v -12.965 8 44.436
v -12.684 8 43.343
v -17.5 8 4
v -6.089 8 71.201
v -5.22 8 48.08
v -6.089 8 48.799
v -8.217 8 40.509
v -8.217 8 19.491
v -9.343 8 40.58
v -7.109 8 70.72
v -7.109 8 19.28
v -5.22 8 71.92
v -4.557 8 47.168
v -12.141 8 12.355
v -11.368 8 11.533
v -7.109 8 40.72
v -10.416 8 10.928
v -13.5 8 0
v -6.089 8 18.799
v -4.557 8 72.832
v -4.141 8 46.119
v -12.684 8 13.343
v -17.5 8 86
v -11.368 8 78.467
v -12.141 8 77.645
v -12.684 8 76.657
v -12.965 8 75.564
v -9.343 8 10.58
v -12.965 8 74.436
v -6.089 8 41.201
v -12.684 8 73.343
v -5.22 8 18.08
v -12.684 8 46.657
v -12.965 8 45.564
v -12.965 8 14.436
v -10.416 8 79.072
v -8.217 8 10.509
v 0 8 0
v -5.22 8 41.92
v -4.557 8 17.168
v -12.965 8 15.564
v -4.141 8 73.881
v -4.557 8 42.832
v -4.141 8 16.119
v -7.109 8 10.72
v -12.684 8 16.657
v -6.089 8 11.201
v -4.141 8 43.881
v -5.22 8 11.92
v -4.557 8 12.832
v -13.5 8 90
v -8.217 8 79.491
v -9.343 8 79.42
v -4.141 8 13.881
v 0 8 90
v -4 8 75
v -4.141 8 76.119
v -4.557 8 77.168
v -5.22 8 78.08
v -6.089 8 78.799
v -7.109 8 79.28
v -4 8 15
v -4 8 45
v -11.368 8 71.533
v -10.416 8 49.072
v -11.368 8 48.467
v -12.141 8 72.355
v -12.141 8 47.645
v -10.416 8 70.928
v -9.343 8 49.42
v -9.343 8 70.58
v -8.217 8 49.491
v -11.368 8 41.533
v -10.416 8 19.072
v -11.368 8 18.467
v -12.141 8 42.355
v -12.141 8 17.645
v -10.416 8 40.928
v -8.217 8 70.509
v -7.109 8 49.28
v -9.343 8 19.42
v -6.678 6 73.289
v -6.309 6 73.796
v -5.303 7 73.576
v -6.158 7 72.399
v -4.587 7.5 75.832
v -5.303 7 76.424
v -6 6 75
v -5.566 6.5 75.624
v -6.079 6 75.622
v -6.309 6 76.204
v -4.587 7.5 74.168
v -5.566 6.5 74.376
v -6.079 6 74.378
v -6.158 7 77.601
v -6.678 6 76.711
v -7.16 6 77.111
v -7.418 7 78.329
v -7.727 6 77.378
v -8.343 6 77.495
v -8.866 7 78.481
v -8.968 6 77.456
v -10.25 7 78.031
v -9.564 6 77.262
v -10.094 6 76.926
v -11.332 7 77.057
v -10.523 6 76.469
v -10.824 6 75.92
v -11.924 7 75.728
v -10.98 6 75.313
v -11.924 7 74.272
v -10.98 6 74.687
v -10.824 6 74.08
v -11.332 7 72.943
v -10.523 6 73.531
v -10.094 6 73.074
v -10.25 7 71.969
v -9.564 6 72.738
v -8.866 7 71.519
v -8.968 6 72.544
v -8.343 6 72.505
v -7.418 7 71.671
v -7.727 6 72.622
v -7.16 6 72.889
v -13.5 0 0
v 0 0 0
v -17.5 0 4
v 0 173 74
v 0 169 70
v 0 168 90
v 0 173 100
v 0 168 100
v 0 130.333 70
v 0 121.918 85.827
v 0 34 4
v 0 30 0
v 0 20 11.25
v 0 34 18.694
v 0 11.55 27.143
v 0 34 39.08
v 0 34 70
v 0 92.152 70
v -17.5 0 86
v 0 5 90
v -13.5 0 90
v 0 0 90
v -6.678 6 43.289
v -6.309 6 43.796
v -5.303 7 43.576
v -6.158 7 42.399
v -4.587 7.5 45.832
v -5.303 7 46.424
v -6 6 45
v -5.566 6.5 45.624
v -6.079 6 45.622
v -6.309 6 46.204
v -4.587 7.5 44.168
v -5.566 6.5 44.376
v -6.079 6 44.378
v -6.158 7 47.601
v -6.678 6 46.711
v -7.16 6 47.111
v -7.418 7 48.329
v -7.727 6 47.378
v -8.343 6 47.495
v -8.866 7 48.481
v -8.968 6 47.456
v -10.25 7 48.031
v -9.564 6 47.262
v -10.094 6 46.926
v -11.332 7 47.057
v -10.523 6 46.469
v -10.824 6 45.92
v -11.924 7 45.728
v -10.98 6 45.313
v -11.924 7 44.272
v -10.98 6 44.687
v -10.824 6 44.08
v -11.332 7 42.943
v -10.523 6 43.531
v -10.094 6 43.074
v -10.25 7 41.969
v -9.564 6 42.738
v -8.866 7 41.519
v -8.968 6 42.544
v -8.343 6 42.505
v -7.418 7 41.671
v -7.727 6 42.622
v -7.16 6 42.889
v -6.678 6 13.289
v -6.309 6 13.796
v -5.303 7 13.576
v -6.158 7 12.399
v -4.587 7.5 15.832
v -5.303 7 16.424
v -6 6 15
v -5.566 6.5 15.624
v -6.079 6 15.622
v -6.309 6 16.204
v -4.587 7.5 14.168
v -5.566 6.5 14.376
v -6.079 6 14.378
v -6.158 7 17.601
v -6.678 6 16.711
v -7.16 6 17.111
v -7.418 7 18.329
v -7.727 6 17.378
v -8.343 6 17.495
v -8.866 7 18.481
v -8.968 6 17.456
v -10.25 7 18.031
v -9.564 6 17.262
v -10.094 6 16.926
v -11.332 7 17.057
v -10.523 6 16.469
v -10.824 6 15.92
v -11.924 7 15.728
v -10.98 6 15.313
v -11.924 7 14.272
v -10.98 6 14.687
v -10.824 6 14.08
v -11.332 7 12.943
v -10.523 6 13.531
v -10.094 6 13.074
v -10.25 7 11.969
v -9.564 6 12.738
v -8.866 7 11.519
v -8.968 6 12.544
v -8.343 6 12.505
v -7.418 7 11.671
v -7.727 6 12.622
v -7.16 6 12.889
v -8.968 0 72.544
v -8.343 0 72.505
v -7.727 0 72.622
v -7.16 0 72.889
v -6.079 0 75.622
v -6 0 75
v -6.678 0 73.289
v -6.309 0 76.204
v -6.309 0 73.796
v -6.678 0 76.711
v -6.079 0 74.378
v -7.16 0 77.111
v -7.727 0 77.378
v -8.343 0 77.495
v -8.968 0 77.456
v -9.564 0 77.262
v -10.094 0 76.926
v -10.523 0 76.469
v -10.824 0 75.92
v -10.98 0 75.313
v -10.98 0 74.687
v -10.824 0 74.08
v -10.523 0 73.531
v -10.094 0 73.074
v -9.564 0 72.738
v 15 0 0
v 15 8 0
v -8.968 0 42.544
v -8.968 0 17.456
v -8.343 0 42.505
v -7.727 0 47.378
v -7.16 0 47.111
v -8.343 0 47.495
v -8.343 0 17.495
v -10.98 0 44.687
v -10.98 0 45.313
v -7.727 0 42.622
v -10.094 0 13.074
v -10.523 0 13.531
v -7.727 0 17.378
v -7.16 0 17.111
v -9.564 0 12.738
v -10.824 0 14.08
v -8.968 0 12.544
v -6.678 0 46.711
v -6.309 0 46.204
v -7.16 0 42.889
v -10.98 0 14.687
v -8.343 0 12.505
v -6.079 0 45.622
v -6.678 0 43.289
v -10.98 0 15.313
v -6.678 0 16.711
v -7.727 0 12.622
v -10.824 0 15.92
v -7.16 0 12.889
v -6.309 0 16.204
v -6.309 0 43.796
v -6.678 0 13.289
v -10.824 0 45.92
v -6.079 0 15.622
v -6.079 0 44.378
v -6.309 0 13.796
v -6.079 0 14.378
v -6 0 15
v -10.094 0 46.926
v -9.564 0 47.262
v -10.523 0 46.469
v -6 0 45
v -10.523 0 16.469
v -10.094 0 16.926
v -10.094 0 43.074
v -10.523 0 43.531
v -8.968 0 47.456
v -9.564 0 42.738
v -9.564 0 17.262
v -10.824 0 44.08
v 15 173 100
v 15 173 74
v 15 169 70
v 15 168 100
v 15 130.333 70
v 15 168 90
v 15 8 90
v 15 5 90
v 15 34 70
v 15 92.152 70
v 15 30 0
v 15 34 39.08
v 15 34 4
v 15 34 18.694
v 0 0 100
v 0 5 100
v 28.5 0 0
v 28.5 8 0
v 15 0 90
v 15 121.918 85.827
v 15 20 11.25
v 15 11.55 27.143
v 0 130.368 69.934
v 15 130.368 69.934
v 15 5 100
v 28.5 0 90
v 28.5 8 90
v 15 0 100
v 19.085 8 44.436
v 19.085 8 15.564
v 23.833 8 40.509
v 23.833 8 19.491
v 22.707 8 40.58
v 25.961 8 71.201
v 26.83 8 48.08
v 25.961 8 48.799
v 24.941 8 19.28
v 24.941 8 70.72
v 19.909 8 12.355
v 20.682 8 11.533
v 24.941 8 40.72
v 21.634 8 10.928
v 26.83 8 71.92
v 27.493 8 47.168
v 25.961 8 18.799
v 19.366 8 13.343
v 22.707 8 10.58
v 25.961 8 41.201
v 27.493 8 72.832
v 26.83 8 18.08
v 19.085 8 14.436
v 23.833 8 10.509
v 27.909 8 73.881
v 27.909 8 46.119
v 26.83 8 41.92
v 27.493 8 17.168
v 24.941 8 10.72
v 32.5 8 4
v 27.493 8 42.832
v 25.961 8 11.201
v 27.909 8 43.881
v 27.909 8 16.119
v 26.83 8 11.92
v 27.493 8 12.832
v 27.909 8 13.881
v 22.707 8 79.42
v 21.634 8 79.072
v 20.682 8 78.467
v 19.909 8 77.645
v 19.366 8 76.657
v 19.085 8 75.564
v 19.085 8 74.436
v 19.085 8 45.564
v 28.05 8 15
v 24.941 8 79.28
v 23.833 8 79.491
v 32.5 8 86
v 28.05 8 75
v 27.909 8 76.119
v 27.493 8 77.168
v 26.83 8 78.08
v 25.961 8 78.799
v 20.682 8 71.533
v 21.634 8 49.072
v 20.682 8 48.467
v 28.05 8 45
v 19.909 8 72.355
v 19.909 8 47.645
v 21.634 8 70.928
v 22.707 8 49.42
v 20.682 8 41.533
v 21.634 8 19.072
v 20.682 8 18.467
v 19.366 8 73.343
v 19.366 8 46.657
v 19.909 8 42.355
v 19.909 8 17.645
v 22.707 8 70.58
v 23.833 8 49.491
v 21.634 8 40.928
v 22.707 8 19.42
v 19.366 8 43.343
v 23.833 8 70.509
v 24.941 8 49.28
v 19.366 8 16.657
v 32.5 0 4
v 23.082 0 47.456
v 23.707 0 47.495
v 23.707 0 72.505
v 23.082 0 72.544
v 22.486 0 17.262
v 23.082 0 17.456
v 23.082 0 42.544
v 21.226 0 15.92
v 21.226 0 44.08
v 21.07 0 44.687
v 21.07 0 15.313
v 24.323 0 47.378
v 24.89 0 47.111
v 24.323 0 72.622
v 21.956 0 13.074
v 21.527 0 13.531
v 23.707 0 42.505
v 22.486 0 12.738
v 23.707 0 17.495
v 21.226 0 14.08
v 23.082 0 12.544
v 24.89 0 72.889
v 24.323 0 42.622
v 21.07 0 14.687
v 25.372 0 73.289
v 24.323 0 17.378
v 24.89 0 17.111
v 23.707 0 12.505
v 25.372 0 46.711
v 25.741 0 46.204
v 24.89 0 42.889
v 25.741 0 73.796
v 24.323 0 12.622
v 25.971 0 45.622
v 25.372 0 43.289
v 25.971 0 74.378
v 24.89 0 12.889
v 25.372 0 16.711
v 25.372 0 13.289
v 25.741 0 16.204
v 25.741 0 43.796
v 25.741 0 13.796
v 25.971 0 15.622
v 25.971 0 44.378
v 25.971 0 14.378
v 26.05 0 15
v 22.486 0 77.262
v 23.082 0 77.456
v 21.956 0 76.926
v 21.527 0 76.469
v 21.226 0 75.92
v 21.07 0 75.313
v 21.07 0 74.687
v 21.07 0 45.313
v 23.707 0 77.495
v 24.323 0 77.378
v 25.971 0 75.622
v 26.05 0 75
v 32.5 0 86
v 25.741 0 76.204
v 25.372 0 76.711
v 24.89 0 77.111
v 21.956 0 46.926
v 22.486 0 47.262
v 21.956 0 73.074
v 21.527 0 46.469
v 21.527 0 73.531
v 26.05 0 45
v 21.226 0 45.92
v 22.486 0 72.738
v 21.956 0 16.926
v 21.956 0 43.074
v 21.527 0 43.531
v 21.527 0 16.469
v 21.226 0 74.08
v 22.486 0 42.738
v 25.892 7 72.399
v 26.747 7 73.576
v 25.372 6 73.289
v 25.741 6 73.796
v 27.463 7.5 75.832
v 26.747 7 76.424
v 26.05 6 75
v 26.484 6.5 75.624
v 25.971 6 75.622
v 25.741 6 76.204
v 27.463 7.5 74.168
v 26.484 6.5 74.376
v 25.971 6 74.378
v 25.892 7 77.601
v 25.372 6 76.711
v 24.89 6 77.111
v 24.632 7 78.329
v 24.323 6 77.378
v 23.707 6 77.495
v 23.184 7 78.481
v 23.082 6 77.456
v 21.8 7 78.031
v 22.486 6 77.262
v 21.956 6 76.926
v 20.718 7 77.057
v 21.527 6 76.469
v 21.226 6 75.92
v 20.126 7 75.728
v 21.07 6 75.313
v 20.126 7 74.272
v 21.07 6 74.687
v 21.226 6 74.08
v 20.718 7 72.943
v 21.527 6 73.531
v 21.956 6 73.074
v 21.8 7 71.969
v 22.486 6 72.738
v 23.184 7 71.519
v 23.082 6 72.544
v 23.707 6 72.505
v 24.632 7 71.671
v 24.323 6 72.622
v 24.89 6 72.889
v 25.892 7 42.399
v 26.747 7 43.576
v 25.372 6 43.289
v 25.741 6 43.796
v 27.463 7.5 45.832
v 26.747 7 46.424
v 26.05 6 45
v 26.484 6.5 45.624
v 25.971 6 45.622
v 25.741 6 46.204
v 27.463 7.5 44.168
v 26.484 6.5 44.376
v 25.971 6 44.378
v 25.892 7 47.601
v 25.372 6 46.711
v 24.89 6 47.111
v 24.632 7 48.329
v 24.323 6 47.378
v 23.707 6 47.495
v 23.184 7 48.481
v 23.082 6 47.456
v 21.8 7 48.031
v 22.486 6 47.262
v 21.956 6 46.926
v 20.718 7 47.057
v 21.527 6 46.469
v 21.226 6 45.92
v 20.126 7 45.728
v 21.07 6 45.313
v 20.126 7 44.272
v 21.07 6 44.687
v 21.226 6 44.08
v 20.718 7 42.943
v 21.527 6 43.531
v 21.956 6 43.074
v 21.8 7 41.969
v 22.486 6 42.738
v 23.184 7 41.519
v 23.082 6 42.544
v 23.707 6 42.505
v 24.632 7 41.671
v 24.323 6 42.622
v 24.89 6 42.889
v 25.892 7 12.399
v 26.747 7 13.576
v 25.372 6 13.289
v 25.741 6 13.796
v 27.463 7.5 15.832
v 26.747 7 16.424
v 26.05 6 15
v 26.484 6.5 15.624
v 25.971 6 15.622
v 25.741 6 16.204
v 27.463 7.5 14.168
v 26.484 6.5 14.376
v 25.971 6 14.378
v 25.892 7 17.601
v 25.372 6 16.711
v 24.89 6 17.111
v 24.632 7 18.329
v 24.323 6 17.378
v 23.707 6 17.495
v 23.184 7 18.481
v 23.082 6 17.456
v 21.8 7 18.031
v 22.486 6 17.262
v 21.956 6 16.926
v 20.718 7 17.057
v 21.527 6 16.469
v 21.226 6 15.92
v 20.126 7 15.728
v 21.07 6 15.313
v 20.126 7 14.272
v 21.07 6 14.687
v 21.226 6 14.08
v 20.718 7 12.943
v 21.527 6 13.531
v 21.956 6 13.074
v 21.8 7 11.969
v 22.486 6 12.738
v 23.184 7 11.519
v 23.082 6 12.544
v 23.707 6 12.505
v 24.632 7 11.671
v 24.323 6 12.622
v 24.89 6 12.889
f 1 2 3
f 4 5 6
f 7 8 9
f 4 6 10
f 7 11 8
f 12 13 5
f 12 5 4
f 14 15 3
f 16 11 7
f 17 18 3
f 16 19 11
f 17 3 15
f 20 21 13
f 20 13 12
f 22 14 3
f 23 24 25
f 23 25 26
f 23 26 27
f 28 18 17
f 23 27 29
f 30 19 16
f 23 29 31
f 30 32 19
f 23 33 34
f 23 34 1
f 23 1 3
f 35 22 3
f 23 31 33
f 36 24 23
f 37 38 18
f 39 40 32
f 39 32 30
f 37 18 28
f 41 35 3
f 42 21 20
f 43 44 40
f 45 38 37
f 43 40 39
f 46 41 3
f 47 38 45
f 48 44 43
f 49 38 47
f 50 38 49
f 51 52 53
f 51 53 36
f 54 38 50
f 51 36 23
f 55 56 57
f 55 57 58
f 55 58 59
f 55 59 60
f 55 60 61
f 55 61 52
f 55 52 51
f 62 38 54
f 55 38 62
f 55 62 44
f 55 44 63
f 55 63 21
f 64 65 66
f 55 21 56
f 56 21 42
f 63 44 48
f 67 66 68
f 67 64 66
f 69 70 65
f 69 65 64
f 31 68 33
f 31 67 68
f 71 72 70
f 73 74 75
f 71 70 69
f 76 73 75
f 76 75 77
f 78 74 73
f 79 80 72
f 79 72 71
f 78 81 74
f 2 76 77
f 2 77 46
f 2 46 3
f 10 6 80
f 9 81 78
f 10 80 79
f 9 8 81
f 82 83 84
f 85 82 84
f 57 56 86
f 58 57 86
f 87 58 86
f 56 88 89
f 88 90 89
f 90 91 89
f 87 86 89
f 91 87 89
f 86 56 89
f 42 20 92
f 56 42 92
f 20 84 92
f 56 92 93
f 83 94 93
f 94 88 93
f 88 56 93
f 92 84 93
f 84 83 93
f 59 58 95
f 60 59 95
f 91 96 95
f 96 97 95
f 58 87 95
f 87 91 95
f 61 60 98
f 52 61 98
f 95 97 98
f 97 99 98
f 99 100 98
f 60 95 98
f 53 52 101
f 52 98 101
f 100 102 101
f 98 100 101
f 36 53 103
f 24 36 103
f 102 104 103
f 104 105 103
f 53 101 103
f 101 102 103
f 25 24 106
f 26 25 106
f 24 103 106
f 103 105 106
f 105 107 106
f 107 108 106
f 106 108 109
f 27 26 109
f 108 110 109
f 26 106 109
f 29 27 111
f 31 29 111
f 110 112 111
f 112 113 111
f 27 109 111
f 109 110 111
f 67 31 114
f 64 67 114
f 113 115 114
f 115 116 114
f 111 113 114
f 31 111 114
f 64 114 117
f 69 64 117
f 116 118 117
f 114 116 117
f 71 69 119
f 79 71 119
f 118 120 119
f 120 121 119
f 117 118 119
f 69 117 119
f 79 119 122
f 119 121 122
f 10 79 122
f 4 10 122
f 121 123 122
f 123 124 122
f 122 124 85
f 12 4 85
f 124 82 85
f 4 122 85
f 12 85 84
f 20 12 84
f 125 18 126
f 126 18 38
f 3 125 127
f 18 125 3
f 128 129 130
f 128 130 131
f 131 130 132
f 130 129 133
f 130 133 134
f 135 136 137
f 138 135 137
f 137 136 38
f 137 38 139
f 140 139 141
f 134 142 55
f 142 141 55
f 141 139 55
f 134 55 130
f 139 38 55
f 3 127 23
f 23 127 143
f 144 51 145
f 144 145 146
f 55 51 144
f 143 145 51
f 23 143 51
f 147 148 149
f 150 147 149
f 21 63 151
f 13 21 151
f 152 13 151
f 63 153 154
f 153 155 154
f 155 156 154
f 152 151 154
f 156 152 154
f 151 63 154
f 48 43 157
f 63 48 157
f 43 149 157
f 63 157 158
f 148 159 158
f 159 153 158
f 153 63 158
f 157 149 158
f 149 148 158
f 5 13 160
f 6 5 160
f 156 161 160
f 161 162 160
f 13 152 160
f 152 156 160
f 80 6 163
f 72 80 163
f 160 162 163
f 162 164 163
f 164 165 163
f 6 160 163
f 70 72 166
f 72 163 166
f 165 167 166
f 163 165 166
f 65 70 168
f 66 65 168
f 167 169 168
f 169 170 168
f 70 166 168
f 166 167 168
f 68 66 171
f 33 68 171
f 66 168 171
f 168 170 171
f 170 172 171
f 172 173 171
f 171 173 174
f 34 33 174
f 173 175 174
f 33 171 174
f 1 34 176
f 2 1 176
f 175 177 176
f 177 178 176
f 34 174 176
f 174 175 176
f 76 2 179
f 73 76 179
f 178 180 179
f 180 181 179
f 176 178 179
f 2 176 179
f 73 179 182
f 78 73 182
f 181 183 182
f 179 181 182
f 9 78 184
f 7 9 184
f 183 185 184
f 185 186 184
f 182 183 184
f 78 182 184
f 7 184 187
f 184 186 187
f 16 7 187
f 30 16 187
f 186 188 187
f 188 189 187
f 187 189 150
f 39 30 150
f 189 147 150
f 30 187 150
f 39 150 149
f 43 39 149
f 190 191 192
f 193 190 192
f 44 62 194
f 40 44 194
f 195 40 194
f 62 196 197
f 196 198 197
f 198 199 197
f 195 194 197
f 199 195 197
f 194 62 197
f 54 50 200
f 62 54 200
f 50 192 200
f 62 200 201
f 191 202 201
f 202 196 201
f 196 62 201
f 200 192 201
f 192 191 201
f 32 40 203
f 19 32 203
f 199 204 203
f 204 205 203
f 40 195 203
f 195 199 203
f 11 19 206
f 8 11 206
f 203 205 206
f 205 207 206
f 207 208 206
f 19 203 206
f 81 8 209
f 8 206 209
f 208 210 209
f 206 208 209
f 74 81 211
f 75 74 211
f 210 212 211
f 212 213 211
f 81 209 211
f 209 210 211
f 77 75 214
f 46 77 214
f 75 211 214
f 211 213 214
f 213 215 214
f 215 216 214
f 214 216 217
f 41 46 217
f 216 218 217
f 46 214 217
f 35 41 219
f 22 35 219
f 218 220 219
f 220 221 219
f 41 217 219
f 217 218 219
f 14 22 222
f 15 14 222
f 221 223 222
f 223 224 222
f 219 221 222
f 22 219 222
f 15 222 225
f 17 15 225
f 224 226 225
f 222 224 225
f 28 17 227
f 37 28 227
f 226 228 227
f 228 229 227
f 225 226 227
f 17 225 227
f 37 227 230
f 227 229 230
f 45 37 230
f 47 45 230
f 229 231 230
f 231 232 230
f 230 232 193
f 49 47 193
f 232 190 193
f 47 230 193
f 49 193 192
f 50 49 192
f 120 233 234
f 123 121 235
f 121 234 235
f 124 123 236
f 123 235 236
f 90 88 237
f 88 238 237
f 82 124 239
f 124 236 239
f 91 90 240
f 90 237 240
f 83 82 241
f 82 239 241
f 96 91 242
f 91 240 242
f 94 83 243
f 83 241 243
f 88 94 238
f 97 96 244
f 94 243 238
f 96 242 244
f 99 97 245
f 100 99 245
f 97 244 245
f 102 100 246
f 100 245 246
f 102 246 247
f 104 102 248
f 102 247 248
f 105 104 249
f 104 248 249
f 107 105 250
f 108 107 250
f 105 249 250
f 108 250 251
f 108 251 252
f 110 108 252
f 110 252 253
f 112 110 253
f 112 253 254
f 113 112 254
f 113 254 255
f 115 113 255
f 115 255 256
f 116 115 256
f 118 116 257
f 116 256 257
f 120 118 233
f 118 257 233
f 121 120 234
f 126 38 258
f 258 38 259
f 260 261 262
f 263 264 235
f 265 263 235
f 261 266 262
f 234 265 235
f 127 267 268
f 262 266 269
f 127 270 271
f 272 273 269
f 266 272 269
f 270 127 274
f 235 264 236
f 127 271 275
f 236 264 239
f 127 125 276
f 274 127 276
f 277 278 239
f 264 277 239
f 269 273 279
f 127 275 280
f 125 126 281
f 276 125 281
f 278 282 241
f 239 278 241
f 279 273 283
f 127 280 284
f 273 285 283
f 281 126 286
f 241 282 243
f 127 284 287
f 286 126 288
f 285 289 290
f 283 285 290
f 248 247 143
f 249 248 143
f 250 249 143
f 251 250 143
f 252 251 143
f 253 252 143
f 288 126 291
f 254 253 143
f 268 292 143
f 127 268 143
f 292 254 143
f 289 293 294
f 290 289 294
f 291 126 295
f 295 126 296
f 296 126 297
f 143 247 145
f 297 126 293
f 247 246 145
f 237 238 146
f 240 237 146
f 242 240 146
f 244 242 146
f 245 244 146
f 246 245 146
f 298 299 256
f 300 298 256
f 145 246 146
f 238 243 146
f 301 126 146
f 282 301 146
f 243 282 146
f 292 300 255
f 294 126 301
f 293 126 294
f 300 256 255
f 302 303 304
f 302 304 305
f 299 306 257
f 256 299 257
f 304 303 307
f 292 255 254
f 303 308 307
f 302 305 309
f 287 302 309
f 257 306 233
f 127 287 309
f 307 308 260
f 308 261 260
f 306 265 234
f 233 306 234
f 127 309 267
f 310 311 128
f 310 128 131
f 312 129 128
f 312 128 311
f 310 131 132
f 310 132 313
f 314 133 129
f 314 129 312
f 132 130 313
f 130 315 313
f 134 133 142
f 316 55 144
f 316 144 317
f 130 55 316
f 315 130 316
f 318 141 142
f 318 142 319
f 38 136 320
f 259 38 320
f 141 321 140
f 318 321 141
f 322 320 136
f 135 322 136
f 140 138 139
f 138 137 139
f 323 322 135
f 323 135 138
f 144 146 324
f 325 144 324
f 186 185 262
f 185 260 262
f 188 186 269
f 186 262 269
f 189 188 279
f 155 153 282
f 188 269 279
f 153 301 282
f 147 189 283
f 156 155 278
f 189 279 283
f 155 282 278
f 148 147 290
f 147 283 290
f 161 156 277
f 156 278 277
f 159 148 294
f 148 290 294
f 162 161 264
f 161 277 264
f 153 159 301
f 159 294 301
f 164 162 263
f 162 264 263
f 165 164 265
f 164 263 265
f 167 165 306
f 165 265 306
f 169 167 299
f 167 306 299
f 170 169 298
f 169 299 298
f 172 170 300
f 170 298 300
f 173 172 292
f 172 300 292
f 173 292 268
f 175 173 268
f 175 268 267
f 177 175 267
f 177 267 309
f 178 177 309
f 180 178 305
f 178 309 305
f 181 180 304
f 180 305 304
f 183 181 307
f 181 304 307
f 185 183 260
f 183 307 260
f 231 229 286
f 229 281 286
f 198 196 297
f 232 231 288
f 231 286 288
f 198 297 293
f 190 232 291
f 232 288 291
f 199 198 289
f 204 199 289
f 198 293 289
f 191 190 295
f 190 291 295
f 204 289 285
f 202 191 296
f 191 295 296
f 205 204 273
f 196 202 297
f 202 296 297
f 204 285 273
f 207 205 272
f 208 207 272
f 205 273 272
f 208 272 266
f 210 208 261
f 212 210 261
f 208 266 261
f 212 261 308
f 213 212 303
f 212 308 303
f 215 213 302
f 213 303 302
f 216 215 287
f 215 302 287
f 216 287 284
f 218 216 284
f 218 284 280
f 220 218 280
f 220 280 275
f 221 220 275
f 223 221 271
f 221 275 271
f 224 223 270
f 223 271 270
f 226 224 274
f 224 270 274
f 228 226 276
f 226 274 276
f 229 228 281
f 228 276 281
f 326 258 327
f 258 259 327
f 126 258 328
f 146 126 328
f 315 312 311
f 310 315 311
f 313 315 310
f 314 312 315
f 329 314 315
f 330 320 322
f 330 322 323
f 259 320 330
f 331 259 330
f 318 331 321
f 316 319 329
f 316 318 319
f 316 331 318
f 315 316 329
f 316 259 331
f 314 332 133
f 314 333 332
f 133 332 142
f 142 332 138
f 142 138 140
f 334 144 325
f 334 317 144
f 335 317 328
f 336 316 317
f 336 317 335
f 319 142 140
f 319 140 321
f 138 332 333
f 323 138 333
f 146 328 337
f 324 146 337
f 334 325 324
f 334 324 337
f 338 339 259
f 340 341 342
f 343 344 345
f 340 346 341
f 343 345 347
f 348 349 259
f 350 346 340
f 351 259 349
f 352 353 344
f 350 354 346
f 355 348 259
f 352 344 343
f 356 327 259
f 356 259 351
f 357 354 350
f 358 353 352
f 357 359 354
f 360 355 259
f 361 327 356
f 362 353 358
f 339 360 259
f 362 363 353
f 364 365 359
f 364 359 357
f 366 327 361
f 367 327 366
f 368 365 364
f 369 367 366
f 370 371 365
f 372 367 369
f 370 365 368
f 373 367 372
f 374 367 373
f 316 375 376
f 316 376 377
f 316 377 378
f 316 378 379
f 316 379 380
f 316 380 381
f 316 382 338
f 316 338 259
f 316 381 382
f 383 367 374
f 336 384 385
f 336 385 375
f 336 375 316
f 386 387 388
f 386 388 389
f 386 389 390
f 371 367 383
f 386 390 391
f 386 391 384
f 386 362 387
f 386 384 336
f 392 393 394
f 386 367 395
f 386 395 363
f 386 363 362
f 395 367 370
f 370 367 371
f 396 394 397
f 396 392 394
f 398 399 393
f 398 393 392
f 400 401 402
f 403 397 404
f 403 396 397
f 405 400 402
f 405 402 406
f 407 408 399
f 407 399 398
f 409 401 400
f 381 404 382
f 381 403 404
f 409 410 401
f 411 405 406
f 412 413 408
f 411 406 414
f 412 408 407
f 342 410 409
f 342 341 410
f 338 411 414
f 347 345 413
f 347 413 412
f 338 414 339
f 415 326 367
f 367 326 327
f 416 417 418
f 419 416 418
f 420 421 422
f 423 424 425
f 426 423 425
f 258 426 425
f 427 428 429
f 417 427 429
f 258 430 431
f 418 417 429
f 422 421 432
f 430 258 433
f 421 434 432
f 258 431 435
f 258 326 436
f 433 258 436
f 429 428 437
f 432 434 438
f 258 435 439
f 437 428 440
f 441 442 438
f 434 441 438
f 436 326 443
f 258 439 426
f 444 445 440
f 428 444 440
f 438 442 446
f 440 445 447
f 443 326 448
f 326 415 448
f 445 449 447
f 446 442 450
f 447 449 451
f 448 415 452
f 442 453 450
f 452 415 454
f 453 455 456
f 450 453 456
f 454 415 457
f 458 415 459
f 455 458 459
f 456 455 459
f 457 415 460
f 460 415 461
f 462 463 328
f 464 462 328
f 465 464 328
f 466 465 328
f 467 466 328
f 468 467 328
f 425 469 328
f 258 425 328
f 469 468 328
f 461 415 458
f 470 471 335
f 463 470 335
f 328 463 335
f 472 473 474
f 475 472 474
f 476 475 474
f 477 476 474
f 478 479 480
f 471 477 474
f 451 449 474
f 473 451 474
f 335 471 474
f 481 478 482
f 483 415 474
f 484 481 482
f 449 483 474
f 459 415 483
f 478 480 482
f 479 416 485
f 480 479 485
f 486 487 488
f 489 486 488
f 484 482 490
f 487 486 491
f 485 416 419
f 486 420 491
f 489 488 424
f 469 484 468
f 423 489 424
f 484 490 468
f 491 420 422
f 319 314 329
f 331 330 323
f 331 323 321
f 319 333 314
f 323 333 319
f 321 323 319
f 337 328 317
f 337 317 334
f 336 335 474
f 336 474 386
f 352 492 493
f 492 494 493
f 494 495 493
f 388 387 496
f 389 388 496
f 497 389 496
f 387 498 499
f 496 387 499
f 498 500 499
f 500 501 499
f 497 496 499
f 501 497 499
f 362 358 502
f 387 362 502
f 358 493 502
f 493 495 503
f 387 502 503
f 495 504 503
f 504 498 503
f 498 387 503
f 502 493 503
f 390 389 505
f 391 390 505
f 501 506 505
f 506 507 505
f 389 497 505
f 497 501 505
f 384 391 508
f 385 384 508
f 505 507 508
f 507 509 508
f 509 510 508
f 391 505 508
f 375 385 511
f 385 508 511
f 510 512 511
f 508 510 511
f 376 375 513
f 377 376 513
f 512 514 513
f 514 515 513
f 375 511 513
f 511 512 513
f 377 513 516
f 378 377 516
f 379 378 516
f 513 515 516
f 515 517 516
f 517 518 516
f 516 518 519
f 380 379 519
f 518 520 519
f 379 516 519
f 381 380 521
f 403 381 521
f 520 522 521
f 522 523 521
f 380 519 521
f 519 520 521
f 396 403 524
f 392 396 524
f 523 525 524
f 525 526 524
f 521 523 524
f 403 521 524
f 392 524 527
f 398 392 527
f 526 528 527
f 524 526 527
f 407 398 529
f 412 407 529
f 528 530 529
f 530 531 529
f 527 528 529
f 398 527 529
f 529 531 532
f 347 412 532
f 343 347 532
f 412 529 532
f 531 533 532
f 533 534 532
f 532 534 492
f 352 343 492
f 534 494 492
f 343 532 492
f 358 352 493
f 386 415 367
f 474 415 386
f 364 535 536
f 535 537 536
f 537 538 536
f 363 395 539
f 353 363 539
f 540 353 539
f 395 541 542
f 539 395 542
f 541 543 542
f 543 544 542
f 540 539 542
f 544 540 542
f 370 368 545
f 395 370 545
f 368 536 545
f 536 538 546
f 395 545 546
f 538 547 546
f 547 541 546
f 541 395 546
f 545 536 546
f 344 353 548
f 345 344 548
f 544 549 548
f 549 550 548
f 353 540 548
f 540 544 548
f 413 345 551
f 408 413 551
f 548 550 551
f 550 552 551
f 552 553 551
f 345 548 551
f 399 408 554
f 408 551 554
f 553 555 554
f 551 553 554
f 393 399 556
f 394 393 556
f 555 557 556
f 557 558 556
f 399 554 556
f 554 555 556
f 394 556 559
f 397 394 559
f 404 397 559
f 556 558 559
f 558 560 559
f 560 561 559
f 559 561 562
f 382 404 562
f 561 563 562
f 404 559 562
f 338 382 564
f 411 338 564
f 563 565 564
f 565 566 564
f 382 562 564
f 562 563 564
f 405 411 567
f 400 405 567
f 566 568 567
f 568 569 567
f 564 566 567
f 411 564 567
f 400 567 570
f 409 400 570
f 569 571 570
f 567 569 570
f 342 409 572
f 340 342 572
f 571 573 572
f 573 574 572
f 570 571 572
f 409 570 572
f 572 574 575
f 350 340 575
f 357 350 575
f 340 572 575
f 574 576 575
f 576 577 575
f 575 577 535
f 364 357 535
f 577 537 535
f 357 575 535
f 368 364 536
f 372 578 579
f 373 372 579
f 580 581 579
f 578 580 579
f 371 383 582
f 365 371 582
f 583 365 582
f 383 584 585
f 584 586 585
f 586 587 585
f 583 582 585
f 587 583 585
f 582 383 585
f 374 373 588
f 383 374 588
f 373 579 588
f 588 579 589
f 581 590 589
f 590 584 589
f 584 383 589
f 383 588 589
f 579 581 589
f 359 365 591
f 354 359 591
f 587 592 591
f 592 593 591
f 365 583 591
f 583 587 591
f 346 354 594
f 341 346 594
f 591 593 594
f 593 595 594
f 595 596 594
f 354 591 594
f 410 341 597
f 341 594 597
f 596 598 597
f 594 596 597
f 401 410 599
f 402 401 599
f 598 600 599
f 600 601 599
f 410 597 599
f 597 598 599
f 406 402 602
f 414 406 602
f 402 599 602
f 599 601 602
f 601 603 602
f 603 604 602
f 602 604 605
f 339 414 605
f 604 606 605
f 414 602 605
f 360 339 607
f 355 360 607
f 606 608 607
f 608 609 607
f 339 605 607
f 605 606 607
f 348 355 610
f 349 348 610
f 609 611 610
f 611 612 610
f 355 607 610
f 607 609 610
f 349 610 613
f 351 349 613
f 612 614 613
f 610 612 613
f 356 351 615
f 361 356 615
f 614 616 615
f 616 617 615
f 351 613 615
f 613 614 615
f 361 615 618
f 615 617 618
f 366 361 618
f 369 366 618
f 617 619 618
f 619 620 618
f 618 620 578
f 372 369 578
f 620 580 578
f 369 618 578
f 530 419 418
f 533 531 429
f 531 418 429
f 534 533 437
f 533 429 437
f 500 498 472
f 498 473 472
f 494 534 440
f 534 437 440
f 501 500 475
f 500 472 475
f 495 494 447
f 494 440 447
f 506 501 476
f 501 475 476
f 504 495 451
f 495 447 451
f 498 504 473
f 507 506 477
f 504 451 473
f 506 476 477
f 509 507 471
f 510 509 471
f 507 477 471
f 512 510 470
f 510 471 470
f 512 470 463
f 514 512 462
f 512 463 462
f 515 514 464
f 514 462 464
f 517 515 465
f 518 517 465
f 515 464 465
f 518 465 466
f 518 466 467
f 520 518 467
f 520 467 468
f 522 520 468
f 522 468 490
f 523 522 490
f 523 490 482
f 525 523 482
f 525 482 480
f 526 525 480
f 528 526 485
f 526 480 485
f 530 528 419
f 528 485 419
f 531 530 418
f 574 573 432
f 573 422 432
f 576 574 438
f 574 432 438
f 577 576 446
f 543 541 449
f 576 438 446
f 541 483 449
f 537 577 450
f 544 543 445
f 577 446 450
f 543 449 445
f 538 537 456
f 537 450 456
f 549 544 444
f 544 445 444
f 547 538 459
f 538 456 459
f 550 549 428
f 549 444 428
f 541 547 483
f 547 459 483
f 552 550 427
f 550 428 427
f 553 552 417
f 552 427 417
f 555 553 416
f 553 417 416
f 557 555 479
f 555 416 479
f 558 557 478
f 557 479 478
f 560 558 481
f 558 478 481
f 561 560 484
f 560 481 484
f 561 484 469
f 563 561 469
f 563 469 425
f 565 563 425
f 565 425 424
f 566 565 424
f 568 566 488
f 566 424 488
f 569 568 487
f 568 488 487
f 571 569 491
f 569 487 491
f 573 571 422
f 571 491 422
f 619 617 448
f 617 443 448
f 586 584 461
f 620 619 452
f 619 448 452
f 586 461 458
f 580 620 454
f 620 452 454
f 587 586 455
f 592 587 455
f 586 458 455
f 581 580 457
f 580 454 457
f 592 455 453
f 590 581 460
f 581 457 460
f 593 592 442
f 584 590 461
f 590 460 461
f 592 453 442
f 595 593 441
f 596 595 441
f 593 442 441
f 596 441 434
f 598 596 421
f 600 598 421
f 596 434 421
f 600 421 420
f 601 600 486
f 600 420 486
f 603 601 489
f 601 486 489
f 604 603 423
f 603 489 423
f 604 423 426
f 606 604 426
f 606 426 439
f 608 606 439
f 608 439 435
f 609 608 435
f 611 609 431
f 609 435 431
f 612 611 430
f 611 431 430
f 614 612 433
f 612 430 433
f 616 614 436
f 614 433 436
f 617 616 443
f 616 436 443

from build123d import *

# Parameters (mm, degrees)
CYLINDER005_R          = 2.5
CYLINDER005_DEPTH      = 20
CYLINDER005_ROLL_ANGLE = 90
CYLINDER004_R          = 2.5
CYLINDER004_DEPTH      = 20
CYLINDER004_ROLL_ANGLE = 90
CYLINDER003_R          = 2.5
CYLINDER003_DEPTH      = 20
CYLINDER003_ROLL_ANGLE = 90
CYLINDER002_R          = 2.5
CYLINDER002_DEPTH      = 20
CYLINDER002_ROLL_ANGLE = 90
CYLINDER001_R          = 2.5
CYLINDER001_DEPTH      = 20
CYLINDER001_ROLL_ANGLE = 90
CYLINDER_R             = 2.5
CYLINDER_DEPTH         = 20
CYLINDER_ROLL_ANGLE    = 90
BOX002_W               = 15
BOX002_H               = 163
BOX002_DEPTH           = 100
BOX003_W               = 15
BOX003_H               = 125
BOX003_DEPTH           = 18
BOX003_ROLL_ANGLE      = 28
BOX001_W               = 15
BOX001_H               = 163
BOX001_DEPTH           = 100
BOX_W                  = 15
BOX_H                  = 173
BOX_DEPTH              = 100
CHAMFER001_SIZE        = 4
BOX004_W               = 50
BOX004_H               = 8
BOX004_DEPTH           = 90
CHAMFER_SIZE           = 4
CHAMFER002_SIZE        = 4
CHAMFER003_SIZE        = 2


with BuildPart() as cylinder005:
    # Cylinder005 → Cylinder005 (new body)
    with BuildSketch(Plane.XY):
        Circle(CYLINDER005_R)
    extrude(amount=CYLINDER005_DEPTH)


with BuildPart() as cylinder005_1:
    # Cylinder005 roll: moved
    add(cylinder005.part.rotate(Axis((0, 0, 0), (1, 0, 0)), CYLINDER005_ROLL_ANGLE))


with BuildPart() as cylinder005_2:
    # Cylinder005 placement: moved
    add(cylinder005_1.part.moved(Location((-8.5, 14, 75))))


with BuildPart() as cylinder004:
    # Cylinder004 → Cylinder004 (new body)
    with BuildSketch(Plane.XY):
        Circle(CYLINDER004_R)
    extrude(amount=CYLINDER004_DEPTH)


with BuildPart() as cylinder004_1:
    # Cylinder004 roll: moved
    add(cylinder004.part.rotate(Axis((0, 0, 0), (1, 0, 0)), CYLINDER004_ROLL_ANGLE))


with BuildPart() as cylinder004_2:
    # Cylinder004 placement: moved
    add(cylinder004_1.part.moved(Location((23.55, 14, 75))))


with BuildPart() as cylinder003:
    # Cylinder003 → Cylinder003 (new body)
    with BuildSketch(Plane.XY):
        Circle(CYLINDER003_R)
    extrude(amount=CYLINDER003_DEPTH)


with BuildPart() as cylinder003_1:
    # Cylinder003 roll: moved
    add(cylinder003.part.rotate(Axis((0, 0, 0), (1, 0, 0)), CYLINDER003_ROLL_ANGLE))


with BuildPart() as cylinder003_2:
    # Cylinder003 placement: moved
    add(cylinder003_1.part.moved(Location((-8.5, 14, 45))))


with BuildPart() as cylinder002:
    # Cylinder002 → Cylinder002 (new body)
    with BuildSketch(Plane.XY):
        Circle(CYLINDER002_R)
    extrude(amount=CYLINDER002_DEPTH)


with BuildPart() as cylinder002_1:
    # Cylinder002 roll: moved
    add(cylinder002.part.rotate(Axis((0, 0, 0), (1, 0, 0)), CYLINDER002_ROLL_ANGLE))


with BuildPart() as cylinder002_2:
    # Cylinder002 placement: moved
    add(cylinder002_1.part.moved(Location((23.55, 14, 45))))


with BuildPart() as cylinder001:
    # Cylinder001 → Cylinder001 (new body)
    with BuildSketch(Plane.XY):
        Circle(CYLINDER001_R)
    extrude(amount=CYLINDER001_DEPTH)


with BuildPart() as cylinder001_1:
    # Cylinder001 roll: moved
    add(cylinder001.part.rotate(Axis((0, 0, 0), (1, 0, 0)), CYLINDER001_ROLL_ANGLE))


with BuildPart() as cylinder001_2:
    # Cylinder001 placement: moved
    add(cylinder001_1.part.moved(Location((-8.5, 14, 15))))


with BuildPart() as cylinder:
    # Cylinder → Cylinder (new body)
    with BuildSketch(Plane.XY):
        Circle(CYLINDER_R)
    extrude(amount=CYLINDER_DEPTH)


with BuildPart() as cylinder_1:
    # Cylinder roll: moved
    add(cylinder.part.rotate(Axis((0, 0, 0), (1, 0, 0)), CYLINDER_ROLL_ANGLE))


with BuildPart() as cylinder_2:
    # Cylinder placement: moved
    add(cylinder_1.part.moved(Location((23.55, 14, 15))))


with BuildPart() as cube002:
    # Box002 → Box002 (new body)
    with BuildSketch(Plane(origin=(0, 5, 90), x_dir=(1, 0, 0), z_dir=(0, 0, 1))):
        with Locations((7.5, 81.5)):
            Rectangle(BOX002_W, BOX002_H)
    extrude(amount=BOX002_DEPTH)


with BuildPart() as cube003:
    # Box003 → Box003 (new body)
    with BuildSketch(Plane.XY):
        with Locations((7.5, 62.5)):
            Rectangle(BOX003_W, BOX003_H)
    extrude(amount=BOX003_DEPTH)


with BuildPart() as cube003_1:
    # Box003 roll: moved
    add(cube003.part.rotate(Axis((0, 0, 0), (1, 0, 0)), BOX003_ROLL_ANGLE))


with BuildPart() as cube003_2:
    # Box003 placement: moved
    add(cube003_1.part.moved(Location((0, 20, 11.25))))


with BuildPart() as cube001:
    # Box001 → Box001 (new body)
    with BuildSketch(Plane(origin=(0, 34, -30), x_dir=(1, 0, 0), z_dir=(0, 0, 1))):
        with Locations((7.5, 81.5)):
            Rectangle(BOX001_W, BOX001_H)
    extrude(amount=BOX001_DEPTH)


with BuildPart() as chamfer001:
    # Box → Box (new body)
    with BuildSketch(Plane.XY):
        with Locations((7.5, 86.5)):
            Rectangle(BOX_W, BOX_H)
    extrude(amount=BOX_DEPTH)

    # Cut: cut Cube001
    add(cube001.part, mode=Mode.SUBTRACT)

    # Fusion: union Cube003
    add(cube003_2.part)

    # Chamfer001
    chamfer001_edges = [chamfer001.edges().sort_by_distance(p)[0] for p in [
        (7.5, 34, 0),
    ]]
    chamfer(chamfer001_edges, length=CHAMFER001_SIZE)


with BuildPart() as final:
    # Box004 → Box004 (new body)
    with BuildSketch(Plane(origin=(-17.5, 0, 0), x_dir=(1, 0, 0), z_dir=(0, 0, 1))):
        with Locations((25, 4)):
            Rectangle(BOX004_W, BOX004_H)
    extrude(amount=BOX004_DEPTH)

    # Chamfer
    chamfer_edges = [final.edges().sort_by_distance(p)[0] for p in [
        (-17.5, 4, 90),
        (-17.5, 4, 0),
        (32.5, 4, 90),
        (32.5, 4, 0),
    ]]
    chamfer(chamfer_edges, length=CHAMFER_SIZE)

    # Fusion001: union Chamfer001
    add(chamfer001.part)

    # Cut001: cut Cube002
    add(cube002.part, mode=Mode.SUBTRACT)

    # Chamfer002
    chamfer002_edges = [final.edges().sort_by_distance(p)[0] for p in [
        (7.5, 173, 70),
    ]]
    chamfer(chamfer002_edges, length=CHAMFER002_SIZE)

    # Cut002: cut Cylinder
    add(cylinder_2.part, mode=Mode.SUBTRACT)

    # Cut003: cut Cylinder001
    add(cylinder001_2.part, mode=Mode.SUBTRACT)

    # Cut004: cut Cylinder002
    add(cylinder002_2.part, mode=Mode.SUBTRACT)

    # Cut005: cut Cylinder003
    add(cylinder003_2.part, mode=Mode.SUBTRACT)

    # Cut006: cut Cylinder004
    add(cylinder004_2.part, mode=Mode.SUBTRACT)

    # Cut007: cut Cylinder005
    add(cylinder005_2.part, mode=Mode.SUBTRACT)

    # Chamfer003
    chamfer003_edges = [final.edges().sort_by_distance(p)[0] for p in [
        (-11, 8, 75),
        (-11, 8, 45),
        (-11, 8, 15),
        (21.05, 8, 75),
        (21.05, 8, 45),
        (21.05, 8, 15),
    ]]
    chamfer(chamfer003_edges, length=CHAMFER003_SIZE)


solid = final.part
